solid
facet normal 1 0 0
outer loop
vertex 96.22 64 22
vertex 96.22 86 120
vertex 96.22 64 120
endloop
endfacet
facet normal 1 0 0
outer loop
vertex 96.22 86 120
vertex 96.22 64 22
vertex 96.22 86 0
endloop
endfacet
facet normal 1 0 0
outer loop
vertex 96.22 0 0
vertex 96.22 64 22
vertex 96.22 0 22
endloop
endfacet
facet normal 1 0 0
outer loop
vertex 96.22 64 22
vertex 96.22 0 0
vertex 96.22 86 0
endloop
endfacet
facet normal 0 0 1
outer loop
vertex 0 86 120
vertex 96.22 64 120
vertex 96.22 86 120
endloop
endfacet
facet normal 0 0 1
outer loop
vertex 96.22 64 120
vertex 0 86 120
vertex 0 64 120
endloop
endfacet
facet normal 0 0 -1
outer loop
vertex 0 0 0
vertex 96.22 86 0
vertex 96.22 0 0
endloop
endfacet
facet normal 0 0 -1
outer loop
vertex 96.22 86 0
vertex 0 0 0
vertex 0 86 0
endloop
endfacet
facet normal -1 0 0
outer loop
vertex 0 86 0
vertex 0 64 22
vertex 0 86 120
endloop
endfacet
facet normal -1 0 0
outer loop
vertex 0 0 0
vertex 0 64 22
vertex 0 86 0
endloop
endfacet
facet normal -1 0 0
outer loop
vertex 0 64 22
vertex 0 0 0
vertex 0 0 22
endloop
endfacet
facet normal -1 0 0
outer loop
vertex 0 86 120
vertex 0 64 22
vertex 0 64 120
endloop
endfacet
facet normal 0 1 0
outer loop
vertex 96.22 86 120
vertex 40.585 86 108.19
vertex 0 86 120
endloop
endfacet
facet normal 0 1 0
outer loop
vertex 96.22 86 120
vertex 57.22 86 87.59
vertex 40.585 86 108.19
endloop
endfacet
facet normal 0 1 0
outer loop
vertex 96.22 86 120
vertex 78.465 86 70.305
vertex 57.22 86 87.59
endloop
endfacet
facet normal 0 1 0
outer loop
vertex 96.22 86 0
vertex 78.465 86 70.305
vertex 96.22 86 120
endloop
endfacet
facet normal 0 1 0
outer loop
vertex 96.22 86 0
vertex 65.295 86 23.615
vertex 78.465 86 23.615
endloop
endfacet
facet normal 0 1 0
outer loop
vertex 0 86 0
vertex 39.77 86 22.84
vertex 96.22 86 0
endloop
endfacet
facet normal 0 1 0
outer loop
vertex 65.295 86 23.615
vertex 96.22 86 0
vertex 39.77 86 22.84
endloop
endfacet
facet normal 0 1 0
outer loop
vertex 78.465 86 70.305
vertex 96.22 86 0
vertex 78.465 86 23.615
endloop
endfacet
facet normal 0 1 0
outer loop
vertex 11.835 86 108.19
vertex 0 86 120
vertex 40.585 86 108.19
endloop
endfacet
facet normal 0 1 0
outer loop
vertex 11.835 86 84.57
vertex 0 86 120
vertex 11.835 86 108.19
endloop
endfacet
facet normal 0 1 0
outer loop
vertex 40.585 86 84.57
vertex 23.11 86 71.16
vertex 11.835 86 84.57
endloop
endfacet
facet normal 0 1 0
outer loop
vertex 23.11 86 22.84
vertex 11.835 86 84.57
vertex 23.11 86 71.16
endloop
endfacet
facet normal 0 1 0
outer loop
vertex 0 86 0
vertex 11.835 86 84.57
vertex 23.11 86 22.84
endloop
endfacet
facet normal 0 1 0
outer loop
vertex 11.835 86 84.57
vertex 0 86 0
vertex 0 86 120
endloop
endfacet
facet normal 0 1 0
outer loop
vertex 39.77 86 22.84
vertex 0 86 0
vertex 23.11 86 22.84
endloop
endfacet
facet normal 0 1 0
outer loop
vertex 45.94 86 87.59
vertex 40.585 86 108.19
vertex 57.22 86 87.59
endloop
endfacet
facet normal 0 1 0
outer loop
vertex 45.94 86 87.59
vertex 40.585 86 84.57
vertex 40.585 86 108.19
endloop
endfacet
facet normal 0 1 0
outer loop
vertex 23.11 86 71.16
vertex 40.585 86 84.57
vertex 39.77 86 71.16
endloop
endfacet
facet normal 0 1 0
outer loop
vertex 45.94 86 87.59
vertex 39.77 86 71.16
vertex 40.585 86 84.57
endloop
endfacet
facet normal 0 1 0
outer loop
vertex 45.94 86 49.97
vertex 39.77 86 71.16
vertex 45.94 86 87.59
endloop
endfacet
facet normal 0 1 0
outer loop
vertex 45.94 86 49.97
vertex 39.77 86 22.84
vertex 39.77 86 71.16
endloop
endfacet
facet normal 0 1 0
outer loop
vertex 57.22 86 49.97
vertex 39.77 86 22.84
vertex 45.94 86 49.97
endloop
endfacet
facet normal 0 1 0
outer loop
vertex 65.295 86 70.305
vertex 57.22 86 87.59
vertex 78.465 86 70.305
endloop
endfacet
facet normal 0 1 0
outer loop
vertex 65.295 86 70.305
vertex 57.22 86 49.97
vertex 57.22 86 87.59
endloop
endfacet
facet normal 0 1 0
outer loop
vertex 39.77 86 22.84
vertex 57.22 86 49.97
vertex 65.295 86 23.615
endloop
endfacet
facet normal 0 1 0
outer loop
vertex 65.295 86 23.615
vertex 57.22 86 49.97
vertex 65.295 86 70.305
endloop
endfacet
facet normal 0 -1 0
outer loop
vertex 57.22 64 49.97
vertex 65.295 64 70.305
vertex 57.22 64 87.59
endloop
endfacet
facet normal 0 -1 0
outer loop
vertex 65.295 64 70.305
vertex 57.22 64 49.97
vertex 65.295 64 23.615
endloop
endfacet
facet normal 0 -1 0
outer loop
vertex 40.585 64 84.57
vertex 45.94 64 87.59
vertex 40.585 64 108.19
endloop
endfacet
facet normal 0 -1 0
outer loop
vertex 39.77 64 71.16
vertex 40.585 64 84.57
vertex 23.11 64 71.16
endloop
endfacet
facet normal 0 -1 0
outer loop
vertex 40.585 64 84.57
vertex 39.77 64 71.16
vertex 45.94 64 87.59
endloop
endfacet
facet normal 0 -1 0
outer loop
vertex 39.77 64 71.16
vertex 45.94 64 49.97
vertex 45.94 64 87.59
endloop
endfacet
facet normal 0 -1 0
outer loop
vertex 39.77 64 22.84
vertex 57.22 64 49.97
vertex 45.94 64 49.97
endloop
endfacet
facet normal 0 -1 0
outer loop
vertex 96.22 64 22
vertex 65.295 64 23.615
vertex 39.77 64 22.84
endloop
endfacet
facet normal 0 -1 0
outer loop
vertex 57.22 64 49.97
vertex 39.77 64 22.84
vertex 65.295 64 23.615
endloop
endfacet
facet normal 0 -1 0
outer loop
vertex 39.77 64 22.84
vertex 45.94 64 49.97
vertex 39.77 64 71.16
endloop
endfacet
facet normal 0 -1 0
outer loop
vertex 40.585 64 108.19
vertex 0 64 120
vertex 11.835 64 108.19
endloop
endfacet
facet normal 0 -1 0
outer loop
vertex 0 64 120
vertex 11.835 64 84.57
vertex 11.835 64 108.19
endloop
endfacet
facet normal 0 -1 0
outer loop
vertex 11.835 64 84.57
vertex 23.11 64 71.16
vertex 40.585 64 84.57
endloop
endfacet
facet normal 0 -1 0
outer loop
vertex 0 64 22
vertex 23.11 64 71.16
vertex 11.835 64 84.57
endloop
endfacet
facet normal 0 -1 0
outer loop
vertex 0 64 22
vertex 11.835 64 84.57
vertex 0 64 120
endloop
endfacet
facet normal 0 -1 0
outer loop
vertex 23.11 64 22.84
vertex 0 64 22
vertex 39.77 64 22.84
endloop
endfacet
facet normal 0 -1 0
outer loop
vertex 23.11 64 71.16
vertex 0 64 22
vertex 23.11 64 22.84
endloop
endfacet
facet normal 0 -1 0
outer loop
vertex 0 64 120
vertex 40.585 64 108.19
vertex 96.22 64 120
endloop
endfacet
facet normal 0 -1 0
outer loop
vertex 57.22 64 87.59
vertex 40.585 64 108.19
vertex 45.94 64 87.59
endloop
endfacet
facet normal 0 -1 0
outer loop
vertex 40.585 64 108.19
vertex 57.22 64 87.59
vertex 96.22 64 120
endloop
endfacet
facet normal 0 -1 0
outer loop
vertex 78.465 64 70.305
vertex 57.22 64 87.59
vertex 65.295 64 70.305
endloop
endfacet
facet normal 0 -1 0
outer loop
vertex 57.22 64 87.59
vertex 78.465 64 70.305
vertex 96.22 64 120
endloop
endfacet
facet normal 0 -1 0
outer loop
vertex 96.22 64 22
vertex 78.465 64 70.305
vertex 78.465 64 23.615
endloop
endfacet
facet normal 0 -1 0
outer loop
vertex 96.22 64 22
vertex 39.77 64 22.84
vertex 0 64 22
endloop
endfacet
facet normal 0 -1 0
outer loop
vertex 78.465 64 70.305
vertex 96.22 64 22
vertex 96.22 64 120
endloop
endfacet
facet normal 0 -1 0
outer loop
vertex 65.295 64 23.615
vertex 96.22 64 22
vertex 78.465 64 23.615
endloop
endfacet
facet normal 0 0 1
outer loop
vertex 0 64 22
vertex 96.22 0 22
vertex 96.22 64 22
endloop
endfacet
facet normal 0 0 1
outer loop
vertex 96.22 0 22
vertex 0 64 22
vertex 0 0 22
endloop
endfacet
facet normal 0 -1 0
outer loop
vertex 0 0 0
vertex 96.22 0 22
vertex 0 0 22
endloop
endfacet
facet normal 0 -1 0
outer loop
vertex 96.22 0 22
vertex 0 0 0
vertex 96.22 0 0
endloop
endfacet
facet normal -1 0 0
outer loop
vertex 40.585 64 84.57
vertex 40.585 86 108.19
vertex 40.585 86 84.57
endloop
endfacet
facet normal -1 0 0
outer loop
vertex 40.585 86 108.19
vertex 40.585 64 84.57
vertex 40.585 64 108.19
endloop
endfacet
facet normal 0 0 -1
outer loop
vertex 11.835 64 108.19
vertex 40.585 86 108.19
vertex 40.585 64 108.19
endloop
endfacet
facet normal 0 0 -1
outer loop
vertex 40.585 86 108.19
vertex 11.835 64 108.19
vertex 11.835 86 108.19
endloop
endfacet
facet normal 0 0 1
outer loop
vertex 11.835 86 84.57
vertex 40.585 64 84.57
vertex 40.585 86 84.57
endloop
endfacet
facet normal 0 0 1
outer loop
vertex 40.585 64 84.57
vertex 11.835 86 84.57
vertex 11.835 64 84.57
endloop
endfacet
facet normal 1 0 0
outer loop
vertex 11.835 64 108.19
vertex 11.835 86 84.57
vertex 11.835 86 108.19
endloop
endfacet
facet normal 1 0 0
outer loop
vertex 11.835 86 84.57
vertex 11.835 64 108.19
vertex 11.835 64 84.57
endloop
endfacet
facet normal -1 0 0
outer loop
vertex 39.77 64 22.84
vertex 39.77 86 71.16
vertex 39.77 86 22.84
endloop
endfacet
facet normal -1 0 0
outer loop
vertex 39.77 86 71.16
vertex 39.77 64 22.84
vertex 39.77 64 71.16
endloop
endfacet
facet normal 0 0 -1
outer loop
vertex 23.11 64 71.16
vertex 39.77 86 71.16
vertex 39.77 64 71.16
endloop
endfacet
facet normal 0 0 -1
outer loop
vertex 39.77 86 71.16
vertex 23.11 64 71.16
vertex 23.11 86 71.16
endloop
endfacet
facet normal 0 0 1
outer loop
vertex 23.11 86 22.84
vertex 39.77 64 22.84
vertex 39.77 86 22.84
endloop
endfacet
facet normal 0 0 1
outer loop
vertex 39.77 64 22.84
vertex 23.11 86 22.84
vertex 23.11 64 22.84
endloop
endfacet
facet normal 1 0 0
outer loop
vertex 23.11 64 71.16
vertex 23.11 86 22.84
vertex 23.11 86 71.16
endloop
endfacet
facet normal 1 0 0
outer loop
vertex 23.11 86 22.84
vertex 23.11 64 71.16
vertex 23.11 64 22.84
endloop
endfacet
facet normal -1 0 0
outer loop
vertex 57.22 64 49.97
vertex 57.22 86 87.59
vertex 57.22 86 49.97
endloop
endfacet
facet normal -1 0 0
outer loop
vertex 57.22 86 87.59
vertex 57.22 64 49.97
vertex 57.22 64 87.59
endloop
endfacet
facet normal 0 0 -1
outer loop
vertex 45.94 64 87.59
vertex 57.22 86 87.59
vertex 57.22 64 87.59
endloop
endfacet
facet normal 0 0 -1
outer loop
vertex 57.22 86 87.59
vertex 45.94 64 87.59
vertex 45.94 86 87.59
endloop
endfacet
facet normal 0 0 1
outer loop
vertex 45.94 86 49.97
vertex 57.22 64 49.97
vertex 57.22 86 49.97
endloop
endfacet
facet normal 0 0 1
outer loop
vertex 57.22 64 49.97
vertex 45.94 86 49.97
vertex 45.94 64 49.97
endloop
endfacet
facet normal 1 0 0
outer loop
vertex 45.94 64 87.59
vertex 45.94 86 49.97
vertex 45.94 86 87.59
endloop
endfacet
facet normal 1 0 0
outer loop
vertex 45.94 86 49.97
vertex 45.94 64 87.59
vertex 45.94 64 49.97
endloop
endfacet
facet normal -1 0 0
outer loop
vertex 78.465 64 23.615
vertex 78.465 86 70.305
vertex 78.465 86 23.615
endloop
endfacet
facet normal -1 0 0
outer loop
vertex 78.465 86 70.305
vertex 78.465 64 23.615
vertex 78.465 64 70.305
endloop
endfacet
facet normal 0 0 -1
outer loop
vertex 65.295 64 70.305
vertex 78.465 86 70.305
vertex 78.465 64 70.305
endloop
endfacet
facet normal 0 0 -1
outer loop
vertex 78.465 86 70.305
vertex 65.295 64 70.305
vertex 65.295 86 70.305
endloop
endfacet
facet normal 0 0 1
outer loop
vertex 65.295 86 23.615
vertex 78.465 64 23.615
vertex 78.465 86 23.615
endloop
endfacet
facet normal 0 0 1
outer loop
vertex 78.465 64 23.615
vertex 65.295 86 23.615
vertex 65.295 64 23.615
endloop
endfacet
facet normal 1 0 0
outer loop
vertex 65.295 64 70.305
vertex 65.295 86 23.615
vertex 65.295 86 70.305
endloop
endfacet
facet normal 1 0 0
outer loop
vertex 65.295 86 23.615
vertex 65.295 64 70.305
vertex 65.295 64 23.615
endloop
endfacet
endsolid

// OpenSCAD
/* doodle-meta {"version":1,"parameters":{"width":{"label":"Overall width","description":"Changes the body width","unit":"mm","feature":"body_width"},"depth":{"label":"Overall depth","description":"Changes the body depth","unit":"mm","feature":"body_depth"},"height":{"label":"Overall height","description":"Changes the body height","unit":"mm","feature":"body_height"},"vertical_leg_thickness":{"label":"Vertical leg thickness","description":"Thickness of the vertical leg (Y-direction)","unit":"mm","feature":"leg_thickness"},"horizontal_leg_thickness":{"label":"Horizontal leg thickness","description":"Thickness of the horizontal leg (Z-direction)","unit":"mm","feature":"leg_thickness"},"cutout1_w":{"label":"Cutout 1 width","description":"Width of the upper-left cutout","unit":"mm","feature":"cutout_1"},"cutout1_h":{"label":"Cutout 1 height","description":"Height of the upper-left cutout","unit":"mm","feature":"cutout_1"},"cutout2_w":{"label":"Cutout 2 width","description":"Width of the lower-left slot","unit":"mm","feature":"cutout_2"},"cutout2_h":{"label":"Cutout 2 height","description":"Height of the lower-left slot","unit":"mm","feature":"cutout_2"},"cutout3_w":{"label":"Cutout 3 width","description":"Width of the center slot","unit":"mm","feature":"cutout_3"},"cutout3_h":{"label":"Cutout 3 height","description":"Height of the center slot","unit":"mm","feature":"cutout_3"},"cutout4_w":{"label":"Cutout 4 width","description":"Width of the lower-right slot","unit":"mm","feature":"cutout_4"},"cutout4_h":{"label":"Cutout 4 height","description":"Height of the lower-right slot","unit":"mm","feature":"cutout_4"}},"features":{"body_width":{"kind":"dimension","axis":"x","label":"Overall width"},"body_depth":{"kind":"dimension","axis":"y","label":"Overall depth"},"body_height":{"kind":"dimension","axis":"z","label":"Overall height"},"leg_thickness":{"kind":"dimension","axis":"z","label":"Leg thickness"},"cutout_1":{"kind":"region","label":"Upper-left cutout","min":[{"parameter":"cutout1_x","scale":1,"offset":0},{"parameter":"cutout1_y","scale":1,"offset":0},{"parameter":"cutout1_z","scale":1,"offset":0}],"max":[{"parameter":"cutout1_x","scale":1,"offset":0},{"parameter":"cutout1_y","scale":1,"offset":0},{"parameter":"cutout1_z","scale":1,"offset":0}]},"cutout_2":{"kind":"region","label":"Lower-left slot","min":[{"parameter":"cutout2_x","scale":1,"offset":0},{"parameter":"cutout2_y","scale":1,"offset":0},{"parameter":"cutout2_z","scale":1,"offset":0}],"max":[{"parameter":"cutout2_x","scale":1,"offset":0},{"parameter":"cutout2_y","scale":1,"offset":0},{"parameter":"cutout2_z","scale":1,"offset":0}]},"cutout_3":{"kind":"region","label":"Center slot","min":[{"parameter":"cutout3_x","scale":1,"offset":0},{"parameter":"cutout3_y","scale":1,"offset":0},{"parameter":"cutout3_z","scale":1,"offset":0}],"max":[{"parameter":"cutout3_x","scale":1,"offset":0},{"parameter":"cutout3_y","scale":1,"offset":0},{"parameter":"cutout3_z","scale":1,"offset":0}]},"cutout_4":{"kind":"region","label":"Lower-right slot","min":[{"parameter":"cutout4_x","scale":1,"offset":0},{"parameter":"cutout4_y","scale":1,"offset":0},{"parameter":"cutout4_z","scale":1,"offset":0}],"max":[{"parameter":"cutout4_x","scale":1,"offset":0},{"parameter":"cutout4_y","scale":1,"offset":0},{"parameter":"cutout4_z","scale":1,"offset":0}]}}} */

// Top-level editable parameters
width = 96.22;
depth = 86.0;
height = 120.0;
vertical_leg_thickness = 22.0;
horizontal_leg_thickness = 22.0;

// Cutout 1 (upper-left)
cutout1_w = 28.75;
cutout1_h = 23.62;
cutout1_x = 26.21;
cutout1_z = 96.38;

// Cutout 2 (lower-left)
cutout2_w = 16.66;
cutout2_h = 48.32;
cutout2_x = 31.44;
cutout2_z = 47.0;

// Cutout 3 (center)
cutout3_w = 11.28;
cutout3_h = 37.62;
cutout3_x = 51.58;
cutout3_z = 68.78;

// Cutout 4 (lower-right)
cutout4_w = 13.17;
cutout4_h = 46.69;
cutout4_x = 71.88;
cutout4_z = 46.96;

// Derived sizes (not editable)
eps = 0.01;

// Modules
module l_bracket_body() {
    // Vertical leg (back, high Y)
    translate([0, depth - vertical_leg_thickness, 0])
        cube([width, vertical_leg_thickness, height]);
    // Horizontal leg (bottom, extends forward from Y=0 to Y=depth)
    translate([0, 0, 0])
        cube([width, depth, horizontal_leg_thickness]);
}

module cutout_cutter(w, h, x, z) {
    // Through-cut along Y (front view openings)
    translate([x - w/2, -eps, z - h/2])
        cube([w, depth + 2*eps, h]);
}

// Main design
difference() {
    l_bracket_body();
    
    // Cutout 1: upper-left
    cutout_cutter(cutout1_w, cutout1_h, cutout1_x, cutout1_z);
    
    // Cutout 2: lower-left
    cutout_cutter(cutout2_w, cutout2_h, cutout2_x, cutout2_z);
    
    // Cutout 3: center
    cutout_cutter(cutout3_w, cutout3_h, cutout3_x, cutout3_z);
    
    // Cutout 4: lower-right
    cutout_cutter(cutout4_w, cutout4_h, cutout4_x, cutout4_z);
}
